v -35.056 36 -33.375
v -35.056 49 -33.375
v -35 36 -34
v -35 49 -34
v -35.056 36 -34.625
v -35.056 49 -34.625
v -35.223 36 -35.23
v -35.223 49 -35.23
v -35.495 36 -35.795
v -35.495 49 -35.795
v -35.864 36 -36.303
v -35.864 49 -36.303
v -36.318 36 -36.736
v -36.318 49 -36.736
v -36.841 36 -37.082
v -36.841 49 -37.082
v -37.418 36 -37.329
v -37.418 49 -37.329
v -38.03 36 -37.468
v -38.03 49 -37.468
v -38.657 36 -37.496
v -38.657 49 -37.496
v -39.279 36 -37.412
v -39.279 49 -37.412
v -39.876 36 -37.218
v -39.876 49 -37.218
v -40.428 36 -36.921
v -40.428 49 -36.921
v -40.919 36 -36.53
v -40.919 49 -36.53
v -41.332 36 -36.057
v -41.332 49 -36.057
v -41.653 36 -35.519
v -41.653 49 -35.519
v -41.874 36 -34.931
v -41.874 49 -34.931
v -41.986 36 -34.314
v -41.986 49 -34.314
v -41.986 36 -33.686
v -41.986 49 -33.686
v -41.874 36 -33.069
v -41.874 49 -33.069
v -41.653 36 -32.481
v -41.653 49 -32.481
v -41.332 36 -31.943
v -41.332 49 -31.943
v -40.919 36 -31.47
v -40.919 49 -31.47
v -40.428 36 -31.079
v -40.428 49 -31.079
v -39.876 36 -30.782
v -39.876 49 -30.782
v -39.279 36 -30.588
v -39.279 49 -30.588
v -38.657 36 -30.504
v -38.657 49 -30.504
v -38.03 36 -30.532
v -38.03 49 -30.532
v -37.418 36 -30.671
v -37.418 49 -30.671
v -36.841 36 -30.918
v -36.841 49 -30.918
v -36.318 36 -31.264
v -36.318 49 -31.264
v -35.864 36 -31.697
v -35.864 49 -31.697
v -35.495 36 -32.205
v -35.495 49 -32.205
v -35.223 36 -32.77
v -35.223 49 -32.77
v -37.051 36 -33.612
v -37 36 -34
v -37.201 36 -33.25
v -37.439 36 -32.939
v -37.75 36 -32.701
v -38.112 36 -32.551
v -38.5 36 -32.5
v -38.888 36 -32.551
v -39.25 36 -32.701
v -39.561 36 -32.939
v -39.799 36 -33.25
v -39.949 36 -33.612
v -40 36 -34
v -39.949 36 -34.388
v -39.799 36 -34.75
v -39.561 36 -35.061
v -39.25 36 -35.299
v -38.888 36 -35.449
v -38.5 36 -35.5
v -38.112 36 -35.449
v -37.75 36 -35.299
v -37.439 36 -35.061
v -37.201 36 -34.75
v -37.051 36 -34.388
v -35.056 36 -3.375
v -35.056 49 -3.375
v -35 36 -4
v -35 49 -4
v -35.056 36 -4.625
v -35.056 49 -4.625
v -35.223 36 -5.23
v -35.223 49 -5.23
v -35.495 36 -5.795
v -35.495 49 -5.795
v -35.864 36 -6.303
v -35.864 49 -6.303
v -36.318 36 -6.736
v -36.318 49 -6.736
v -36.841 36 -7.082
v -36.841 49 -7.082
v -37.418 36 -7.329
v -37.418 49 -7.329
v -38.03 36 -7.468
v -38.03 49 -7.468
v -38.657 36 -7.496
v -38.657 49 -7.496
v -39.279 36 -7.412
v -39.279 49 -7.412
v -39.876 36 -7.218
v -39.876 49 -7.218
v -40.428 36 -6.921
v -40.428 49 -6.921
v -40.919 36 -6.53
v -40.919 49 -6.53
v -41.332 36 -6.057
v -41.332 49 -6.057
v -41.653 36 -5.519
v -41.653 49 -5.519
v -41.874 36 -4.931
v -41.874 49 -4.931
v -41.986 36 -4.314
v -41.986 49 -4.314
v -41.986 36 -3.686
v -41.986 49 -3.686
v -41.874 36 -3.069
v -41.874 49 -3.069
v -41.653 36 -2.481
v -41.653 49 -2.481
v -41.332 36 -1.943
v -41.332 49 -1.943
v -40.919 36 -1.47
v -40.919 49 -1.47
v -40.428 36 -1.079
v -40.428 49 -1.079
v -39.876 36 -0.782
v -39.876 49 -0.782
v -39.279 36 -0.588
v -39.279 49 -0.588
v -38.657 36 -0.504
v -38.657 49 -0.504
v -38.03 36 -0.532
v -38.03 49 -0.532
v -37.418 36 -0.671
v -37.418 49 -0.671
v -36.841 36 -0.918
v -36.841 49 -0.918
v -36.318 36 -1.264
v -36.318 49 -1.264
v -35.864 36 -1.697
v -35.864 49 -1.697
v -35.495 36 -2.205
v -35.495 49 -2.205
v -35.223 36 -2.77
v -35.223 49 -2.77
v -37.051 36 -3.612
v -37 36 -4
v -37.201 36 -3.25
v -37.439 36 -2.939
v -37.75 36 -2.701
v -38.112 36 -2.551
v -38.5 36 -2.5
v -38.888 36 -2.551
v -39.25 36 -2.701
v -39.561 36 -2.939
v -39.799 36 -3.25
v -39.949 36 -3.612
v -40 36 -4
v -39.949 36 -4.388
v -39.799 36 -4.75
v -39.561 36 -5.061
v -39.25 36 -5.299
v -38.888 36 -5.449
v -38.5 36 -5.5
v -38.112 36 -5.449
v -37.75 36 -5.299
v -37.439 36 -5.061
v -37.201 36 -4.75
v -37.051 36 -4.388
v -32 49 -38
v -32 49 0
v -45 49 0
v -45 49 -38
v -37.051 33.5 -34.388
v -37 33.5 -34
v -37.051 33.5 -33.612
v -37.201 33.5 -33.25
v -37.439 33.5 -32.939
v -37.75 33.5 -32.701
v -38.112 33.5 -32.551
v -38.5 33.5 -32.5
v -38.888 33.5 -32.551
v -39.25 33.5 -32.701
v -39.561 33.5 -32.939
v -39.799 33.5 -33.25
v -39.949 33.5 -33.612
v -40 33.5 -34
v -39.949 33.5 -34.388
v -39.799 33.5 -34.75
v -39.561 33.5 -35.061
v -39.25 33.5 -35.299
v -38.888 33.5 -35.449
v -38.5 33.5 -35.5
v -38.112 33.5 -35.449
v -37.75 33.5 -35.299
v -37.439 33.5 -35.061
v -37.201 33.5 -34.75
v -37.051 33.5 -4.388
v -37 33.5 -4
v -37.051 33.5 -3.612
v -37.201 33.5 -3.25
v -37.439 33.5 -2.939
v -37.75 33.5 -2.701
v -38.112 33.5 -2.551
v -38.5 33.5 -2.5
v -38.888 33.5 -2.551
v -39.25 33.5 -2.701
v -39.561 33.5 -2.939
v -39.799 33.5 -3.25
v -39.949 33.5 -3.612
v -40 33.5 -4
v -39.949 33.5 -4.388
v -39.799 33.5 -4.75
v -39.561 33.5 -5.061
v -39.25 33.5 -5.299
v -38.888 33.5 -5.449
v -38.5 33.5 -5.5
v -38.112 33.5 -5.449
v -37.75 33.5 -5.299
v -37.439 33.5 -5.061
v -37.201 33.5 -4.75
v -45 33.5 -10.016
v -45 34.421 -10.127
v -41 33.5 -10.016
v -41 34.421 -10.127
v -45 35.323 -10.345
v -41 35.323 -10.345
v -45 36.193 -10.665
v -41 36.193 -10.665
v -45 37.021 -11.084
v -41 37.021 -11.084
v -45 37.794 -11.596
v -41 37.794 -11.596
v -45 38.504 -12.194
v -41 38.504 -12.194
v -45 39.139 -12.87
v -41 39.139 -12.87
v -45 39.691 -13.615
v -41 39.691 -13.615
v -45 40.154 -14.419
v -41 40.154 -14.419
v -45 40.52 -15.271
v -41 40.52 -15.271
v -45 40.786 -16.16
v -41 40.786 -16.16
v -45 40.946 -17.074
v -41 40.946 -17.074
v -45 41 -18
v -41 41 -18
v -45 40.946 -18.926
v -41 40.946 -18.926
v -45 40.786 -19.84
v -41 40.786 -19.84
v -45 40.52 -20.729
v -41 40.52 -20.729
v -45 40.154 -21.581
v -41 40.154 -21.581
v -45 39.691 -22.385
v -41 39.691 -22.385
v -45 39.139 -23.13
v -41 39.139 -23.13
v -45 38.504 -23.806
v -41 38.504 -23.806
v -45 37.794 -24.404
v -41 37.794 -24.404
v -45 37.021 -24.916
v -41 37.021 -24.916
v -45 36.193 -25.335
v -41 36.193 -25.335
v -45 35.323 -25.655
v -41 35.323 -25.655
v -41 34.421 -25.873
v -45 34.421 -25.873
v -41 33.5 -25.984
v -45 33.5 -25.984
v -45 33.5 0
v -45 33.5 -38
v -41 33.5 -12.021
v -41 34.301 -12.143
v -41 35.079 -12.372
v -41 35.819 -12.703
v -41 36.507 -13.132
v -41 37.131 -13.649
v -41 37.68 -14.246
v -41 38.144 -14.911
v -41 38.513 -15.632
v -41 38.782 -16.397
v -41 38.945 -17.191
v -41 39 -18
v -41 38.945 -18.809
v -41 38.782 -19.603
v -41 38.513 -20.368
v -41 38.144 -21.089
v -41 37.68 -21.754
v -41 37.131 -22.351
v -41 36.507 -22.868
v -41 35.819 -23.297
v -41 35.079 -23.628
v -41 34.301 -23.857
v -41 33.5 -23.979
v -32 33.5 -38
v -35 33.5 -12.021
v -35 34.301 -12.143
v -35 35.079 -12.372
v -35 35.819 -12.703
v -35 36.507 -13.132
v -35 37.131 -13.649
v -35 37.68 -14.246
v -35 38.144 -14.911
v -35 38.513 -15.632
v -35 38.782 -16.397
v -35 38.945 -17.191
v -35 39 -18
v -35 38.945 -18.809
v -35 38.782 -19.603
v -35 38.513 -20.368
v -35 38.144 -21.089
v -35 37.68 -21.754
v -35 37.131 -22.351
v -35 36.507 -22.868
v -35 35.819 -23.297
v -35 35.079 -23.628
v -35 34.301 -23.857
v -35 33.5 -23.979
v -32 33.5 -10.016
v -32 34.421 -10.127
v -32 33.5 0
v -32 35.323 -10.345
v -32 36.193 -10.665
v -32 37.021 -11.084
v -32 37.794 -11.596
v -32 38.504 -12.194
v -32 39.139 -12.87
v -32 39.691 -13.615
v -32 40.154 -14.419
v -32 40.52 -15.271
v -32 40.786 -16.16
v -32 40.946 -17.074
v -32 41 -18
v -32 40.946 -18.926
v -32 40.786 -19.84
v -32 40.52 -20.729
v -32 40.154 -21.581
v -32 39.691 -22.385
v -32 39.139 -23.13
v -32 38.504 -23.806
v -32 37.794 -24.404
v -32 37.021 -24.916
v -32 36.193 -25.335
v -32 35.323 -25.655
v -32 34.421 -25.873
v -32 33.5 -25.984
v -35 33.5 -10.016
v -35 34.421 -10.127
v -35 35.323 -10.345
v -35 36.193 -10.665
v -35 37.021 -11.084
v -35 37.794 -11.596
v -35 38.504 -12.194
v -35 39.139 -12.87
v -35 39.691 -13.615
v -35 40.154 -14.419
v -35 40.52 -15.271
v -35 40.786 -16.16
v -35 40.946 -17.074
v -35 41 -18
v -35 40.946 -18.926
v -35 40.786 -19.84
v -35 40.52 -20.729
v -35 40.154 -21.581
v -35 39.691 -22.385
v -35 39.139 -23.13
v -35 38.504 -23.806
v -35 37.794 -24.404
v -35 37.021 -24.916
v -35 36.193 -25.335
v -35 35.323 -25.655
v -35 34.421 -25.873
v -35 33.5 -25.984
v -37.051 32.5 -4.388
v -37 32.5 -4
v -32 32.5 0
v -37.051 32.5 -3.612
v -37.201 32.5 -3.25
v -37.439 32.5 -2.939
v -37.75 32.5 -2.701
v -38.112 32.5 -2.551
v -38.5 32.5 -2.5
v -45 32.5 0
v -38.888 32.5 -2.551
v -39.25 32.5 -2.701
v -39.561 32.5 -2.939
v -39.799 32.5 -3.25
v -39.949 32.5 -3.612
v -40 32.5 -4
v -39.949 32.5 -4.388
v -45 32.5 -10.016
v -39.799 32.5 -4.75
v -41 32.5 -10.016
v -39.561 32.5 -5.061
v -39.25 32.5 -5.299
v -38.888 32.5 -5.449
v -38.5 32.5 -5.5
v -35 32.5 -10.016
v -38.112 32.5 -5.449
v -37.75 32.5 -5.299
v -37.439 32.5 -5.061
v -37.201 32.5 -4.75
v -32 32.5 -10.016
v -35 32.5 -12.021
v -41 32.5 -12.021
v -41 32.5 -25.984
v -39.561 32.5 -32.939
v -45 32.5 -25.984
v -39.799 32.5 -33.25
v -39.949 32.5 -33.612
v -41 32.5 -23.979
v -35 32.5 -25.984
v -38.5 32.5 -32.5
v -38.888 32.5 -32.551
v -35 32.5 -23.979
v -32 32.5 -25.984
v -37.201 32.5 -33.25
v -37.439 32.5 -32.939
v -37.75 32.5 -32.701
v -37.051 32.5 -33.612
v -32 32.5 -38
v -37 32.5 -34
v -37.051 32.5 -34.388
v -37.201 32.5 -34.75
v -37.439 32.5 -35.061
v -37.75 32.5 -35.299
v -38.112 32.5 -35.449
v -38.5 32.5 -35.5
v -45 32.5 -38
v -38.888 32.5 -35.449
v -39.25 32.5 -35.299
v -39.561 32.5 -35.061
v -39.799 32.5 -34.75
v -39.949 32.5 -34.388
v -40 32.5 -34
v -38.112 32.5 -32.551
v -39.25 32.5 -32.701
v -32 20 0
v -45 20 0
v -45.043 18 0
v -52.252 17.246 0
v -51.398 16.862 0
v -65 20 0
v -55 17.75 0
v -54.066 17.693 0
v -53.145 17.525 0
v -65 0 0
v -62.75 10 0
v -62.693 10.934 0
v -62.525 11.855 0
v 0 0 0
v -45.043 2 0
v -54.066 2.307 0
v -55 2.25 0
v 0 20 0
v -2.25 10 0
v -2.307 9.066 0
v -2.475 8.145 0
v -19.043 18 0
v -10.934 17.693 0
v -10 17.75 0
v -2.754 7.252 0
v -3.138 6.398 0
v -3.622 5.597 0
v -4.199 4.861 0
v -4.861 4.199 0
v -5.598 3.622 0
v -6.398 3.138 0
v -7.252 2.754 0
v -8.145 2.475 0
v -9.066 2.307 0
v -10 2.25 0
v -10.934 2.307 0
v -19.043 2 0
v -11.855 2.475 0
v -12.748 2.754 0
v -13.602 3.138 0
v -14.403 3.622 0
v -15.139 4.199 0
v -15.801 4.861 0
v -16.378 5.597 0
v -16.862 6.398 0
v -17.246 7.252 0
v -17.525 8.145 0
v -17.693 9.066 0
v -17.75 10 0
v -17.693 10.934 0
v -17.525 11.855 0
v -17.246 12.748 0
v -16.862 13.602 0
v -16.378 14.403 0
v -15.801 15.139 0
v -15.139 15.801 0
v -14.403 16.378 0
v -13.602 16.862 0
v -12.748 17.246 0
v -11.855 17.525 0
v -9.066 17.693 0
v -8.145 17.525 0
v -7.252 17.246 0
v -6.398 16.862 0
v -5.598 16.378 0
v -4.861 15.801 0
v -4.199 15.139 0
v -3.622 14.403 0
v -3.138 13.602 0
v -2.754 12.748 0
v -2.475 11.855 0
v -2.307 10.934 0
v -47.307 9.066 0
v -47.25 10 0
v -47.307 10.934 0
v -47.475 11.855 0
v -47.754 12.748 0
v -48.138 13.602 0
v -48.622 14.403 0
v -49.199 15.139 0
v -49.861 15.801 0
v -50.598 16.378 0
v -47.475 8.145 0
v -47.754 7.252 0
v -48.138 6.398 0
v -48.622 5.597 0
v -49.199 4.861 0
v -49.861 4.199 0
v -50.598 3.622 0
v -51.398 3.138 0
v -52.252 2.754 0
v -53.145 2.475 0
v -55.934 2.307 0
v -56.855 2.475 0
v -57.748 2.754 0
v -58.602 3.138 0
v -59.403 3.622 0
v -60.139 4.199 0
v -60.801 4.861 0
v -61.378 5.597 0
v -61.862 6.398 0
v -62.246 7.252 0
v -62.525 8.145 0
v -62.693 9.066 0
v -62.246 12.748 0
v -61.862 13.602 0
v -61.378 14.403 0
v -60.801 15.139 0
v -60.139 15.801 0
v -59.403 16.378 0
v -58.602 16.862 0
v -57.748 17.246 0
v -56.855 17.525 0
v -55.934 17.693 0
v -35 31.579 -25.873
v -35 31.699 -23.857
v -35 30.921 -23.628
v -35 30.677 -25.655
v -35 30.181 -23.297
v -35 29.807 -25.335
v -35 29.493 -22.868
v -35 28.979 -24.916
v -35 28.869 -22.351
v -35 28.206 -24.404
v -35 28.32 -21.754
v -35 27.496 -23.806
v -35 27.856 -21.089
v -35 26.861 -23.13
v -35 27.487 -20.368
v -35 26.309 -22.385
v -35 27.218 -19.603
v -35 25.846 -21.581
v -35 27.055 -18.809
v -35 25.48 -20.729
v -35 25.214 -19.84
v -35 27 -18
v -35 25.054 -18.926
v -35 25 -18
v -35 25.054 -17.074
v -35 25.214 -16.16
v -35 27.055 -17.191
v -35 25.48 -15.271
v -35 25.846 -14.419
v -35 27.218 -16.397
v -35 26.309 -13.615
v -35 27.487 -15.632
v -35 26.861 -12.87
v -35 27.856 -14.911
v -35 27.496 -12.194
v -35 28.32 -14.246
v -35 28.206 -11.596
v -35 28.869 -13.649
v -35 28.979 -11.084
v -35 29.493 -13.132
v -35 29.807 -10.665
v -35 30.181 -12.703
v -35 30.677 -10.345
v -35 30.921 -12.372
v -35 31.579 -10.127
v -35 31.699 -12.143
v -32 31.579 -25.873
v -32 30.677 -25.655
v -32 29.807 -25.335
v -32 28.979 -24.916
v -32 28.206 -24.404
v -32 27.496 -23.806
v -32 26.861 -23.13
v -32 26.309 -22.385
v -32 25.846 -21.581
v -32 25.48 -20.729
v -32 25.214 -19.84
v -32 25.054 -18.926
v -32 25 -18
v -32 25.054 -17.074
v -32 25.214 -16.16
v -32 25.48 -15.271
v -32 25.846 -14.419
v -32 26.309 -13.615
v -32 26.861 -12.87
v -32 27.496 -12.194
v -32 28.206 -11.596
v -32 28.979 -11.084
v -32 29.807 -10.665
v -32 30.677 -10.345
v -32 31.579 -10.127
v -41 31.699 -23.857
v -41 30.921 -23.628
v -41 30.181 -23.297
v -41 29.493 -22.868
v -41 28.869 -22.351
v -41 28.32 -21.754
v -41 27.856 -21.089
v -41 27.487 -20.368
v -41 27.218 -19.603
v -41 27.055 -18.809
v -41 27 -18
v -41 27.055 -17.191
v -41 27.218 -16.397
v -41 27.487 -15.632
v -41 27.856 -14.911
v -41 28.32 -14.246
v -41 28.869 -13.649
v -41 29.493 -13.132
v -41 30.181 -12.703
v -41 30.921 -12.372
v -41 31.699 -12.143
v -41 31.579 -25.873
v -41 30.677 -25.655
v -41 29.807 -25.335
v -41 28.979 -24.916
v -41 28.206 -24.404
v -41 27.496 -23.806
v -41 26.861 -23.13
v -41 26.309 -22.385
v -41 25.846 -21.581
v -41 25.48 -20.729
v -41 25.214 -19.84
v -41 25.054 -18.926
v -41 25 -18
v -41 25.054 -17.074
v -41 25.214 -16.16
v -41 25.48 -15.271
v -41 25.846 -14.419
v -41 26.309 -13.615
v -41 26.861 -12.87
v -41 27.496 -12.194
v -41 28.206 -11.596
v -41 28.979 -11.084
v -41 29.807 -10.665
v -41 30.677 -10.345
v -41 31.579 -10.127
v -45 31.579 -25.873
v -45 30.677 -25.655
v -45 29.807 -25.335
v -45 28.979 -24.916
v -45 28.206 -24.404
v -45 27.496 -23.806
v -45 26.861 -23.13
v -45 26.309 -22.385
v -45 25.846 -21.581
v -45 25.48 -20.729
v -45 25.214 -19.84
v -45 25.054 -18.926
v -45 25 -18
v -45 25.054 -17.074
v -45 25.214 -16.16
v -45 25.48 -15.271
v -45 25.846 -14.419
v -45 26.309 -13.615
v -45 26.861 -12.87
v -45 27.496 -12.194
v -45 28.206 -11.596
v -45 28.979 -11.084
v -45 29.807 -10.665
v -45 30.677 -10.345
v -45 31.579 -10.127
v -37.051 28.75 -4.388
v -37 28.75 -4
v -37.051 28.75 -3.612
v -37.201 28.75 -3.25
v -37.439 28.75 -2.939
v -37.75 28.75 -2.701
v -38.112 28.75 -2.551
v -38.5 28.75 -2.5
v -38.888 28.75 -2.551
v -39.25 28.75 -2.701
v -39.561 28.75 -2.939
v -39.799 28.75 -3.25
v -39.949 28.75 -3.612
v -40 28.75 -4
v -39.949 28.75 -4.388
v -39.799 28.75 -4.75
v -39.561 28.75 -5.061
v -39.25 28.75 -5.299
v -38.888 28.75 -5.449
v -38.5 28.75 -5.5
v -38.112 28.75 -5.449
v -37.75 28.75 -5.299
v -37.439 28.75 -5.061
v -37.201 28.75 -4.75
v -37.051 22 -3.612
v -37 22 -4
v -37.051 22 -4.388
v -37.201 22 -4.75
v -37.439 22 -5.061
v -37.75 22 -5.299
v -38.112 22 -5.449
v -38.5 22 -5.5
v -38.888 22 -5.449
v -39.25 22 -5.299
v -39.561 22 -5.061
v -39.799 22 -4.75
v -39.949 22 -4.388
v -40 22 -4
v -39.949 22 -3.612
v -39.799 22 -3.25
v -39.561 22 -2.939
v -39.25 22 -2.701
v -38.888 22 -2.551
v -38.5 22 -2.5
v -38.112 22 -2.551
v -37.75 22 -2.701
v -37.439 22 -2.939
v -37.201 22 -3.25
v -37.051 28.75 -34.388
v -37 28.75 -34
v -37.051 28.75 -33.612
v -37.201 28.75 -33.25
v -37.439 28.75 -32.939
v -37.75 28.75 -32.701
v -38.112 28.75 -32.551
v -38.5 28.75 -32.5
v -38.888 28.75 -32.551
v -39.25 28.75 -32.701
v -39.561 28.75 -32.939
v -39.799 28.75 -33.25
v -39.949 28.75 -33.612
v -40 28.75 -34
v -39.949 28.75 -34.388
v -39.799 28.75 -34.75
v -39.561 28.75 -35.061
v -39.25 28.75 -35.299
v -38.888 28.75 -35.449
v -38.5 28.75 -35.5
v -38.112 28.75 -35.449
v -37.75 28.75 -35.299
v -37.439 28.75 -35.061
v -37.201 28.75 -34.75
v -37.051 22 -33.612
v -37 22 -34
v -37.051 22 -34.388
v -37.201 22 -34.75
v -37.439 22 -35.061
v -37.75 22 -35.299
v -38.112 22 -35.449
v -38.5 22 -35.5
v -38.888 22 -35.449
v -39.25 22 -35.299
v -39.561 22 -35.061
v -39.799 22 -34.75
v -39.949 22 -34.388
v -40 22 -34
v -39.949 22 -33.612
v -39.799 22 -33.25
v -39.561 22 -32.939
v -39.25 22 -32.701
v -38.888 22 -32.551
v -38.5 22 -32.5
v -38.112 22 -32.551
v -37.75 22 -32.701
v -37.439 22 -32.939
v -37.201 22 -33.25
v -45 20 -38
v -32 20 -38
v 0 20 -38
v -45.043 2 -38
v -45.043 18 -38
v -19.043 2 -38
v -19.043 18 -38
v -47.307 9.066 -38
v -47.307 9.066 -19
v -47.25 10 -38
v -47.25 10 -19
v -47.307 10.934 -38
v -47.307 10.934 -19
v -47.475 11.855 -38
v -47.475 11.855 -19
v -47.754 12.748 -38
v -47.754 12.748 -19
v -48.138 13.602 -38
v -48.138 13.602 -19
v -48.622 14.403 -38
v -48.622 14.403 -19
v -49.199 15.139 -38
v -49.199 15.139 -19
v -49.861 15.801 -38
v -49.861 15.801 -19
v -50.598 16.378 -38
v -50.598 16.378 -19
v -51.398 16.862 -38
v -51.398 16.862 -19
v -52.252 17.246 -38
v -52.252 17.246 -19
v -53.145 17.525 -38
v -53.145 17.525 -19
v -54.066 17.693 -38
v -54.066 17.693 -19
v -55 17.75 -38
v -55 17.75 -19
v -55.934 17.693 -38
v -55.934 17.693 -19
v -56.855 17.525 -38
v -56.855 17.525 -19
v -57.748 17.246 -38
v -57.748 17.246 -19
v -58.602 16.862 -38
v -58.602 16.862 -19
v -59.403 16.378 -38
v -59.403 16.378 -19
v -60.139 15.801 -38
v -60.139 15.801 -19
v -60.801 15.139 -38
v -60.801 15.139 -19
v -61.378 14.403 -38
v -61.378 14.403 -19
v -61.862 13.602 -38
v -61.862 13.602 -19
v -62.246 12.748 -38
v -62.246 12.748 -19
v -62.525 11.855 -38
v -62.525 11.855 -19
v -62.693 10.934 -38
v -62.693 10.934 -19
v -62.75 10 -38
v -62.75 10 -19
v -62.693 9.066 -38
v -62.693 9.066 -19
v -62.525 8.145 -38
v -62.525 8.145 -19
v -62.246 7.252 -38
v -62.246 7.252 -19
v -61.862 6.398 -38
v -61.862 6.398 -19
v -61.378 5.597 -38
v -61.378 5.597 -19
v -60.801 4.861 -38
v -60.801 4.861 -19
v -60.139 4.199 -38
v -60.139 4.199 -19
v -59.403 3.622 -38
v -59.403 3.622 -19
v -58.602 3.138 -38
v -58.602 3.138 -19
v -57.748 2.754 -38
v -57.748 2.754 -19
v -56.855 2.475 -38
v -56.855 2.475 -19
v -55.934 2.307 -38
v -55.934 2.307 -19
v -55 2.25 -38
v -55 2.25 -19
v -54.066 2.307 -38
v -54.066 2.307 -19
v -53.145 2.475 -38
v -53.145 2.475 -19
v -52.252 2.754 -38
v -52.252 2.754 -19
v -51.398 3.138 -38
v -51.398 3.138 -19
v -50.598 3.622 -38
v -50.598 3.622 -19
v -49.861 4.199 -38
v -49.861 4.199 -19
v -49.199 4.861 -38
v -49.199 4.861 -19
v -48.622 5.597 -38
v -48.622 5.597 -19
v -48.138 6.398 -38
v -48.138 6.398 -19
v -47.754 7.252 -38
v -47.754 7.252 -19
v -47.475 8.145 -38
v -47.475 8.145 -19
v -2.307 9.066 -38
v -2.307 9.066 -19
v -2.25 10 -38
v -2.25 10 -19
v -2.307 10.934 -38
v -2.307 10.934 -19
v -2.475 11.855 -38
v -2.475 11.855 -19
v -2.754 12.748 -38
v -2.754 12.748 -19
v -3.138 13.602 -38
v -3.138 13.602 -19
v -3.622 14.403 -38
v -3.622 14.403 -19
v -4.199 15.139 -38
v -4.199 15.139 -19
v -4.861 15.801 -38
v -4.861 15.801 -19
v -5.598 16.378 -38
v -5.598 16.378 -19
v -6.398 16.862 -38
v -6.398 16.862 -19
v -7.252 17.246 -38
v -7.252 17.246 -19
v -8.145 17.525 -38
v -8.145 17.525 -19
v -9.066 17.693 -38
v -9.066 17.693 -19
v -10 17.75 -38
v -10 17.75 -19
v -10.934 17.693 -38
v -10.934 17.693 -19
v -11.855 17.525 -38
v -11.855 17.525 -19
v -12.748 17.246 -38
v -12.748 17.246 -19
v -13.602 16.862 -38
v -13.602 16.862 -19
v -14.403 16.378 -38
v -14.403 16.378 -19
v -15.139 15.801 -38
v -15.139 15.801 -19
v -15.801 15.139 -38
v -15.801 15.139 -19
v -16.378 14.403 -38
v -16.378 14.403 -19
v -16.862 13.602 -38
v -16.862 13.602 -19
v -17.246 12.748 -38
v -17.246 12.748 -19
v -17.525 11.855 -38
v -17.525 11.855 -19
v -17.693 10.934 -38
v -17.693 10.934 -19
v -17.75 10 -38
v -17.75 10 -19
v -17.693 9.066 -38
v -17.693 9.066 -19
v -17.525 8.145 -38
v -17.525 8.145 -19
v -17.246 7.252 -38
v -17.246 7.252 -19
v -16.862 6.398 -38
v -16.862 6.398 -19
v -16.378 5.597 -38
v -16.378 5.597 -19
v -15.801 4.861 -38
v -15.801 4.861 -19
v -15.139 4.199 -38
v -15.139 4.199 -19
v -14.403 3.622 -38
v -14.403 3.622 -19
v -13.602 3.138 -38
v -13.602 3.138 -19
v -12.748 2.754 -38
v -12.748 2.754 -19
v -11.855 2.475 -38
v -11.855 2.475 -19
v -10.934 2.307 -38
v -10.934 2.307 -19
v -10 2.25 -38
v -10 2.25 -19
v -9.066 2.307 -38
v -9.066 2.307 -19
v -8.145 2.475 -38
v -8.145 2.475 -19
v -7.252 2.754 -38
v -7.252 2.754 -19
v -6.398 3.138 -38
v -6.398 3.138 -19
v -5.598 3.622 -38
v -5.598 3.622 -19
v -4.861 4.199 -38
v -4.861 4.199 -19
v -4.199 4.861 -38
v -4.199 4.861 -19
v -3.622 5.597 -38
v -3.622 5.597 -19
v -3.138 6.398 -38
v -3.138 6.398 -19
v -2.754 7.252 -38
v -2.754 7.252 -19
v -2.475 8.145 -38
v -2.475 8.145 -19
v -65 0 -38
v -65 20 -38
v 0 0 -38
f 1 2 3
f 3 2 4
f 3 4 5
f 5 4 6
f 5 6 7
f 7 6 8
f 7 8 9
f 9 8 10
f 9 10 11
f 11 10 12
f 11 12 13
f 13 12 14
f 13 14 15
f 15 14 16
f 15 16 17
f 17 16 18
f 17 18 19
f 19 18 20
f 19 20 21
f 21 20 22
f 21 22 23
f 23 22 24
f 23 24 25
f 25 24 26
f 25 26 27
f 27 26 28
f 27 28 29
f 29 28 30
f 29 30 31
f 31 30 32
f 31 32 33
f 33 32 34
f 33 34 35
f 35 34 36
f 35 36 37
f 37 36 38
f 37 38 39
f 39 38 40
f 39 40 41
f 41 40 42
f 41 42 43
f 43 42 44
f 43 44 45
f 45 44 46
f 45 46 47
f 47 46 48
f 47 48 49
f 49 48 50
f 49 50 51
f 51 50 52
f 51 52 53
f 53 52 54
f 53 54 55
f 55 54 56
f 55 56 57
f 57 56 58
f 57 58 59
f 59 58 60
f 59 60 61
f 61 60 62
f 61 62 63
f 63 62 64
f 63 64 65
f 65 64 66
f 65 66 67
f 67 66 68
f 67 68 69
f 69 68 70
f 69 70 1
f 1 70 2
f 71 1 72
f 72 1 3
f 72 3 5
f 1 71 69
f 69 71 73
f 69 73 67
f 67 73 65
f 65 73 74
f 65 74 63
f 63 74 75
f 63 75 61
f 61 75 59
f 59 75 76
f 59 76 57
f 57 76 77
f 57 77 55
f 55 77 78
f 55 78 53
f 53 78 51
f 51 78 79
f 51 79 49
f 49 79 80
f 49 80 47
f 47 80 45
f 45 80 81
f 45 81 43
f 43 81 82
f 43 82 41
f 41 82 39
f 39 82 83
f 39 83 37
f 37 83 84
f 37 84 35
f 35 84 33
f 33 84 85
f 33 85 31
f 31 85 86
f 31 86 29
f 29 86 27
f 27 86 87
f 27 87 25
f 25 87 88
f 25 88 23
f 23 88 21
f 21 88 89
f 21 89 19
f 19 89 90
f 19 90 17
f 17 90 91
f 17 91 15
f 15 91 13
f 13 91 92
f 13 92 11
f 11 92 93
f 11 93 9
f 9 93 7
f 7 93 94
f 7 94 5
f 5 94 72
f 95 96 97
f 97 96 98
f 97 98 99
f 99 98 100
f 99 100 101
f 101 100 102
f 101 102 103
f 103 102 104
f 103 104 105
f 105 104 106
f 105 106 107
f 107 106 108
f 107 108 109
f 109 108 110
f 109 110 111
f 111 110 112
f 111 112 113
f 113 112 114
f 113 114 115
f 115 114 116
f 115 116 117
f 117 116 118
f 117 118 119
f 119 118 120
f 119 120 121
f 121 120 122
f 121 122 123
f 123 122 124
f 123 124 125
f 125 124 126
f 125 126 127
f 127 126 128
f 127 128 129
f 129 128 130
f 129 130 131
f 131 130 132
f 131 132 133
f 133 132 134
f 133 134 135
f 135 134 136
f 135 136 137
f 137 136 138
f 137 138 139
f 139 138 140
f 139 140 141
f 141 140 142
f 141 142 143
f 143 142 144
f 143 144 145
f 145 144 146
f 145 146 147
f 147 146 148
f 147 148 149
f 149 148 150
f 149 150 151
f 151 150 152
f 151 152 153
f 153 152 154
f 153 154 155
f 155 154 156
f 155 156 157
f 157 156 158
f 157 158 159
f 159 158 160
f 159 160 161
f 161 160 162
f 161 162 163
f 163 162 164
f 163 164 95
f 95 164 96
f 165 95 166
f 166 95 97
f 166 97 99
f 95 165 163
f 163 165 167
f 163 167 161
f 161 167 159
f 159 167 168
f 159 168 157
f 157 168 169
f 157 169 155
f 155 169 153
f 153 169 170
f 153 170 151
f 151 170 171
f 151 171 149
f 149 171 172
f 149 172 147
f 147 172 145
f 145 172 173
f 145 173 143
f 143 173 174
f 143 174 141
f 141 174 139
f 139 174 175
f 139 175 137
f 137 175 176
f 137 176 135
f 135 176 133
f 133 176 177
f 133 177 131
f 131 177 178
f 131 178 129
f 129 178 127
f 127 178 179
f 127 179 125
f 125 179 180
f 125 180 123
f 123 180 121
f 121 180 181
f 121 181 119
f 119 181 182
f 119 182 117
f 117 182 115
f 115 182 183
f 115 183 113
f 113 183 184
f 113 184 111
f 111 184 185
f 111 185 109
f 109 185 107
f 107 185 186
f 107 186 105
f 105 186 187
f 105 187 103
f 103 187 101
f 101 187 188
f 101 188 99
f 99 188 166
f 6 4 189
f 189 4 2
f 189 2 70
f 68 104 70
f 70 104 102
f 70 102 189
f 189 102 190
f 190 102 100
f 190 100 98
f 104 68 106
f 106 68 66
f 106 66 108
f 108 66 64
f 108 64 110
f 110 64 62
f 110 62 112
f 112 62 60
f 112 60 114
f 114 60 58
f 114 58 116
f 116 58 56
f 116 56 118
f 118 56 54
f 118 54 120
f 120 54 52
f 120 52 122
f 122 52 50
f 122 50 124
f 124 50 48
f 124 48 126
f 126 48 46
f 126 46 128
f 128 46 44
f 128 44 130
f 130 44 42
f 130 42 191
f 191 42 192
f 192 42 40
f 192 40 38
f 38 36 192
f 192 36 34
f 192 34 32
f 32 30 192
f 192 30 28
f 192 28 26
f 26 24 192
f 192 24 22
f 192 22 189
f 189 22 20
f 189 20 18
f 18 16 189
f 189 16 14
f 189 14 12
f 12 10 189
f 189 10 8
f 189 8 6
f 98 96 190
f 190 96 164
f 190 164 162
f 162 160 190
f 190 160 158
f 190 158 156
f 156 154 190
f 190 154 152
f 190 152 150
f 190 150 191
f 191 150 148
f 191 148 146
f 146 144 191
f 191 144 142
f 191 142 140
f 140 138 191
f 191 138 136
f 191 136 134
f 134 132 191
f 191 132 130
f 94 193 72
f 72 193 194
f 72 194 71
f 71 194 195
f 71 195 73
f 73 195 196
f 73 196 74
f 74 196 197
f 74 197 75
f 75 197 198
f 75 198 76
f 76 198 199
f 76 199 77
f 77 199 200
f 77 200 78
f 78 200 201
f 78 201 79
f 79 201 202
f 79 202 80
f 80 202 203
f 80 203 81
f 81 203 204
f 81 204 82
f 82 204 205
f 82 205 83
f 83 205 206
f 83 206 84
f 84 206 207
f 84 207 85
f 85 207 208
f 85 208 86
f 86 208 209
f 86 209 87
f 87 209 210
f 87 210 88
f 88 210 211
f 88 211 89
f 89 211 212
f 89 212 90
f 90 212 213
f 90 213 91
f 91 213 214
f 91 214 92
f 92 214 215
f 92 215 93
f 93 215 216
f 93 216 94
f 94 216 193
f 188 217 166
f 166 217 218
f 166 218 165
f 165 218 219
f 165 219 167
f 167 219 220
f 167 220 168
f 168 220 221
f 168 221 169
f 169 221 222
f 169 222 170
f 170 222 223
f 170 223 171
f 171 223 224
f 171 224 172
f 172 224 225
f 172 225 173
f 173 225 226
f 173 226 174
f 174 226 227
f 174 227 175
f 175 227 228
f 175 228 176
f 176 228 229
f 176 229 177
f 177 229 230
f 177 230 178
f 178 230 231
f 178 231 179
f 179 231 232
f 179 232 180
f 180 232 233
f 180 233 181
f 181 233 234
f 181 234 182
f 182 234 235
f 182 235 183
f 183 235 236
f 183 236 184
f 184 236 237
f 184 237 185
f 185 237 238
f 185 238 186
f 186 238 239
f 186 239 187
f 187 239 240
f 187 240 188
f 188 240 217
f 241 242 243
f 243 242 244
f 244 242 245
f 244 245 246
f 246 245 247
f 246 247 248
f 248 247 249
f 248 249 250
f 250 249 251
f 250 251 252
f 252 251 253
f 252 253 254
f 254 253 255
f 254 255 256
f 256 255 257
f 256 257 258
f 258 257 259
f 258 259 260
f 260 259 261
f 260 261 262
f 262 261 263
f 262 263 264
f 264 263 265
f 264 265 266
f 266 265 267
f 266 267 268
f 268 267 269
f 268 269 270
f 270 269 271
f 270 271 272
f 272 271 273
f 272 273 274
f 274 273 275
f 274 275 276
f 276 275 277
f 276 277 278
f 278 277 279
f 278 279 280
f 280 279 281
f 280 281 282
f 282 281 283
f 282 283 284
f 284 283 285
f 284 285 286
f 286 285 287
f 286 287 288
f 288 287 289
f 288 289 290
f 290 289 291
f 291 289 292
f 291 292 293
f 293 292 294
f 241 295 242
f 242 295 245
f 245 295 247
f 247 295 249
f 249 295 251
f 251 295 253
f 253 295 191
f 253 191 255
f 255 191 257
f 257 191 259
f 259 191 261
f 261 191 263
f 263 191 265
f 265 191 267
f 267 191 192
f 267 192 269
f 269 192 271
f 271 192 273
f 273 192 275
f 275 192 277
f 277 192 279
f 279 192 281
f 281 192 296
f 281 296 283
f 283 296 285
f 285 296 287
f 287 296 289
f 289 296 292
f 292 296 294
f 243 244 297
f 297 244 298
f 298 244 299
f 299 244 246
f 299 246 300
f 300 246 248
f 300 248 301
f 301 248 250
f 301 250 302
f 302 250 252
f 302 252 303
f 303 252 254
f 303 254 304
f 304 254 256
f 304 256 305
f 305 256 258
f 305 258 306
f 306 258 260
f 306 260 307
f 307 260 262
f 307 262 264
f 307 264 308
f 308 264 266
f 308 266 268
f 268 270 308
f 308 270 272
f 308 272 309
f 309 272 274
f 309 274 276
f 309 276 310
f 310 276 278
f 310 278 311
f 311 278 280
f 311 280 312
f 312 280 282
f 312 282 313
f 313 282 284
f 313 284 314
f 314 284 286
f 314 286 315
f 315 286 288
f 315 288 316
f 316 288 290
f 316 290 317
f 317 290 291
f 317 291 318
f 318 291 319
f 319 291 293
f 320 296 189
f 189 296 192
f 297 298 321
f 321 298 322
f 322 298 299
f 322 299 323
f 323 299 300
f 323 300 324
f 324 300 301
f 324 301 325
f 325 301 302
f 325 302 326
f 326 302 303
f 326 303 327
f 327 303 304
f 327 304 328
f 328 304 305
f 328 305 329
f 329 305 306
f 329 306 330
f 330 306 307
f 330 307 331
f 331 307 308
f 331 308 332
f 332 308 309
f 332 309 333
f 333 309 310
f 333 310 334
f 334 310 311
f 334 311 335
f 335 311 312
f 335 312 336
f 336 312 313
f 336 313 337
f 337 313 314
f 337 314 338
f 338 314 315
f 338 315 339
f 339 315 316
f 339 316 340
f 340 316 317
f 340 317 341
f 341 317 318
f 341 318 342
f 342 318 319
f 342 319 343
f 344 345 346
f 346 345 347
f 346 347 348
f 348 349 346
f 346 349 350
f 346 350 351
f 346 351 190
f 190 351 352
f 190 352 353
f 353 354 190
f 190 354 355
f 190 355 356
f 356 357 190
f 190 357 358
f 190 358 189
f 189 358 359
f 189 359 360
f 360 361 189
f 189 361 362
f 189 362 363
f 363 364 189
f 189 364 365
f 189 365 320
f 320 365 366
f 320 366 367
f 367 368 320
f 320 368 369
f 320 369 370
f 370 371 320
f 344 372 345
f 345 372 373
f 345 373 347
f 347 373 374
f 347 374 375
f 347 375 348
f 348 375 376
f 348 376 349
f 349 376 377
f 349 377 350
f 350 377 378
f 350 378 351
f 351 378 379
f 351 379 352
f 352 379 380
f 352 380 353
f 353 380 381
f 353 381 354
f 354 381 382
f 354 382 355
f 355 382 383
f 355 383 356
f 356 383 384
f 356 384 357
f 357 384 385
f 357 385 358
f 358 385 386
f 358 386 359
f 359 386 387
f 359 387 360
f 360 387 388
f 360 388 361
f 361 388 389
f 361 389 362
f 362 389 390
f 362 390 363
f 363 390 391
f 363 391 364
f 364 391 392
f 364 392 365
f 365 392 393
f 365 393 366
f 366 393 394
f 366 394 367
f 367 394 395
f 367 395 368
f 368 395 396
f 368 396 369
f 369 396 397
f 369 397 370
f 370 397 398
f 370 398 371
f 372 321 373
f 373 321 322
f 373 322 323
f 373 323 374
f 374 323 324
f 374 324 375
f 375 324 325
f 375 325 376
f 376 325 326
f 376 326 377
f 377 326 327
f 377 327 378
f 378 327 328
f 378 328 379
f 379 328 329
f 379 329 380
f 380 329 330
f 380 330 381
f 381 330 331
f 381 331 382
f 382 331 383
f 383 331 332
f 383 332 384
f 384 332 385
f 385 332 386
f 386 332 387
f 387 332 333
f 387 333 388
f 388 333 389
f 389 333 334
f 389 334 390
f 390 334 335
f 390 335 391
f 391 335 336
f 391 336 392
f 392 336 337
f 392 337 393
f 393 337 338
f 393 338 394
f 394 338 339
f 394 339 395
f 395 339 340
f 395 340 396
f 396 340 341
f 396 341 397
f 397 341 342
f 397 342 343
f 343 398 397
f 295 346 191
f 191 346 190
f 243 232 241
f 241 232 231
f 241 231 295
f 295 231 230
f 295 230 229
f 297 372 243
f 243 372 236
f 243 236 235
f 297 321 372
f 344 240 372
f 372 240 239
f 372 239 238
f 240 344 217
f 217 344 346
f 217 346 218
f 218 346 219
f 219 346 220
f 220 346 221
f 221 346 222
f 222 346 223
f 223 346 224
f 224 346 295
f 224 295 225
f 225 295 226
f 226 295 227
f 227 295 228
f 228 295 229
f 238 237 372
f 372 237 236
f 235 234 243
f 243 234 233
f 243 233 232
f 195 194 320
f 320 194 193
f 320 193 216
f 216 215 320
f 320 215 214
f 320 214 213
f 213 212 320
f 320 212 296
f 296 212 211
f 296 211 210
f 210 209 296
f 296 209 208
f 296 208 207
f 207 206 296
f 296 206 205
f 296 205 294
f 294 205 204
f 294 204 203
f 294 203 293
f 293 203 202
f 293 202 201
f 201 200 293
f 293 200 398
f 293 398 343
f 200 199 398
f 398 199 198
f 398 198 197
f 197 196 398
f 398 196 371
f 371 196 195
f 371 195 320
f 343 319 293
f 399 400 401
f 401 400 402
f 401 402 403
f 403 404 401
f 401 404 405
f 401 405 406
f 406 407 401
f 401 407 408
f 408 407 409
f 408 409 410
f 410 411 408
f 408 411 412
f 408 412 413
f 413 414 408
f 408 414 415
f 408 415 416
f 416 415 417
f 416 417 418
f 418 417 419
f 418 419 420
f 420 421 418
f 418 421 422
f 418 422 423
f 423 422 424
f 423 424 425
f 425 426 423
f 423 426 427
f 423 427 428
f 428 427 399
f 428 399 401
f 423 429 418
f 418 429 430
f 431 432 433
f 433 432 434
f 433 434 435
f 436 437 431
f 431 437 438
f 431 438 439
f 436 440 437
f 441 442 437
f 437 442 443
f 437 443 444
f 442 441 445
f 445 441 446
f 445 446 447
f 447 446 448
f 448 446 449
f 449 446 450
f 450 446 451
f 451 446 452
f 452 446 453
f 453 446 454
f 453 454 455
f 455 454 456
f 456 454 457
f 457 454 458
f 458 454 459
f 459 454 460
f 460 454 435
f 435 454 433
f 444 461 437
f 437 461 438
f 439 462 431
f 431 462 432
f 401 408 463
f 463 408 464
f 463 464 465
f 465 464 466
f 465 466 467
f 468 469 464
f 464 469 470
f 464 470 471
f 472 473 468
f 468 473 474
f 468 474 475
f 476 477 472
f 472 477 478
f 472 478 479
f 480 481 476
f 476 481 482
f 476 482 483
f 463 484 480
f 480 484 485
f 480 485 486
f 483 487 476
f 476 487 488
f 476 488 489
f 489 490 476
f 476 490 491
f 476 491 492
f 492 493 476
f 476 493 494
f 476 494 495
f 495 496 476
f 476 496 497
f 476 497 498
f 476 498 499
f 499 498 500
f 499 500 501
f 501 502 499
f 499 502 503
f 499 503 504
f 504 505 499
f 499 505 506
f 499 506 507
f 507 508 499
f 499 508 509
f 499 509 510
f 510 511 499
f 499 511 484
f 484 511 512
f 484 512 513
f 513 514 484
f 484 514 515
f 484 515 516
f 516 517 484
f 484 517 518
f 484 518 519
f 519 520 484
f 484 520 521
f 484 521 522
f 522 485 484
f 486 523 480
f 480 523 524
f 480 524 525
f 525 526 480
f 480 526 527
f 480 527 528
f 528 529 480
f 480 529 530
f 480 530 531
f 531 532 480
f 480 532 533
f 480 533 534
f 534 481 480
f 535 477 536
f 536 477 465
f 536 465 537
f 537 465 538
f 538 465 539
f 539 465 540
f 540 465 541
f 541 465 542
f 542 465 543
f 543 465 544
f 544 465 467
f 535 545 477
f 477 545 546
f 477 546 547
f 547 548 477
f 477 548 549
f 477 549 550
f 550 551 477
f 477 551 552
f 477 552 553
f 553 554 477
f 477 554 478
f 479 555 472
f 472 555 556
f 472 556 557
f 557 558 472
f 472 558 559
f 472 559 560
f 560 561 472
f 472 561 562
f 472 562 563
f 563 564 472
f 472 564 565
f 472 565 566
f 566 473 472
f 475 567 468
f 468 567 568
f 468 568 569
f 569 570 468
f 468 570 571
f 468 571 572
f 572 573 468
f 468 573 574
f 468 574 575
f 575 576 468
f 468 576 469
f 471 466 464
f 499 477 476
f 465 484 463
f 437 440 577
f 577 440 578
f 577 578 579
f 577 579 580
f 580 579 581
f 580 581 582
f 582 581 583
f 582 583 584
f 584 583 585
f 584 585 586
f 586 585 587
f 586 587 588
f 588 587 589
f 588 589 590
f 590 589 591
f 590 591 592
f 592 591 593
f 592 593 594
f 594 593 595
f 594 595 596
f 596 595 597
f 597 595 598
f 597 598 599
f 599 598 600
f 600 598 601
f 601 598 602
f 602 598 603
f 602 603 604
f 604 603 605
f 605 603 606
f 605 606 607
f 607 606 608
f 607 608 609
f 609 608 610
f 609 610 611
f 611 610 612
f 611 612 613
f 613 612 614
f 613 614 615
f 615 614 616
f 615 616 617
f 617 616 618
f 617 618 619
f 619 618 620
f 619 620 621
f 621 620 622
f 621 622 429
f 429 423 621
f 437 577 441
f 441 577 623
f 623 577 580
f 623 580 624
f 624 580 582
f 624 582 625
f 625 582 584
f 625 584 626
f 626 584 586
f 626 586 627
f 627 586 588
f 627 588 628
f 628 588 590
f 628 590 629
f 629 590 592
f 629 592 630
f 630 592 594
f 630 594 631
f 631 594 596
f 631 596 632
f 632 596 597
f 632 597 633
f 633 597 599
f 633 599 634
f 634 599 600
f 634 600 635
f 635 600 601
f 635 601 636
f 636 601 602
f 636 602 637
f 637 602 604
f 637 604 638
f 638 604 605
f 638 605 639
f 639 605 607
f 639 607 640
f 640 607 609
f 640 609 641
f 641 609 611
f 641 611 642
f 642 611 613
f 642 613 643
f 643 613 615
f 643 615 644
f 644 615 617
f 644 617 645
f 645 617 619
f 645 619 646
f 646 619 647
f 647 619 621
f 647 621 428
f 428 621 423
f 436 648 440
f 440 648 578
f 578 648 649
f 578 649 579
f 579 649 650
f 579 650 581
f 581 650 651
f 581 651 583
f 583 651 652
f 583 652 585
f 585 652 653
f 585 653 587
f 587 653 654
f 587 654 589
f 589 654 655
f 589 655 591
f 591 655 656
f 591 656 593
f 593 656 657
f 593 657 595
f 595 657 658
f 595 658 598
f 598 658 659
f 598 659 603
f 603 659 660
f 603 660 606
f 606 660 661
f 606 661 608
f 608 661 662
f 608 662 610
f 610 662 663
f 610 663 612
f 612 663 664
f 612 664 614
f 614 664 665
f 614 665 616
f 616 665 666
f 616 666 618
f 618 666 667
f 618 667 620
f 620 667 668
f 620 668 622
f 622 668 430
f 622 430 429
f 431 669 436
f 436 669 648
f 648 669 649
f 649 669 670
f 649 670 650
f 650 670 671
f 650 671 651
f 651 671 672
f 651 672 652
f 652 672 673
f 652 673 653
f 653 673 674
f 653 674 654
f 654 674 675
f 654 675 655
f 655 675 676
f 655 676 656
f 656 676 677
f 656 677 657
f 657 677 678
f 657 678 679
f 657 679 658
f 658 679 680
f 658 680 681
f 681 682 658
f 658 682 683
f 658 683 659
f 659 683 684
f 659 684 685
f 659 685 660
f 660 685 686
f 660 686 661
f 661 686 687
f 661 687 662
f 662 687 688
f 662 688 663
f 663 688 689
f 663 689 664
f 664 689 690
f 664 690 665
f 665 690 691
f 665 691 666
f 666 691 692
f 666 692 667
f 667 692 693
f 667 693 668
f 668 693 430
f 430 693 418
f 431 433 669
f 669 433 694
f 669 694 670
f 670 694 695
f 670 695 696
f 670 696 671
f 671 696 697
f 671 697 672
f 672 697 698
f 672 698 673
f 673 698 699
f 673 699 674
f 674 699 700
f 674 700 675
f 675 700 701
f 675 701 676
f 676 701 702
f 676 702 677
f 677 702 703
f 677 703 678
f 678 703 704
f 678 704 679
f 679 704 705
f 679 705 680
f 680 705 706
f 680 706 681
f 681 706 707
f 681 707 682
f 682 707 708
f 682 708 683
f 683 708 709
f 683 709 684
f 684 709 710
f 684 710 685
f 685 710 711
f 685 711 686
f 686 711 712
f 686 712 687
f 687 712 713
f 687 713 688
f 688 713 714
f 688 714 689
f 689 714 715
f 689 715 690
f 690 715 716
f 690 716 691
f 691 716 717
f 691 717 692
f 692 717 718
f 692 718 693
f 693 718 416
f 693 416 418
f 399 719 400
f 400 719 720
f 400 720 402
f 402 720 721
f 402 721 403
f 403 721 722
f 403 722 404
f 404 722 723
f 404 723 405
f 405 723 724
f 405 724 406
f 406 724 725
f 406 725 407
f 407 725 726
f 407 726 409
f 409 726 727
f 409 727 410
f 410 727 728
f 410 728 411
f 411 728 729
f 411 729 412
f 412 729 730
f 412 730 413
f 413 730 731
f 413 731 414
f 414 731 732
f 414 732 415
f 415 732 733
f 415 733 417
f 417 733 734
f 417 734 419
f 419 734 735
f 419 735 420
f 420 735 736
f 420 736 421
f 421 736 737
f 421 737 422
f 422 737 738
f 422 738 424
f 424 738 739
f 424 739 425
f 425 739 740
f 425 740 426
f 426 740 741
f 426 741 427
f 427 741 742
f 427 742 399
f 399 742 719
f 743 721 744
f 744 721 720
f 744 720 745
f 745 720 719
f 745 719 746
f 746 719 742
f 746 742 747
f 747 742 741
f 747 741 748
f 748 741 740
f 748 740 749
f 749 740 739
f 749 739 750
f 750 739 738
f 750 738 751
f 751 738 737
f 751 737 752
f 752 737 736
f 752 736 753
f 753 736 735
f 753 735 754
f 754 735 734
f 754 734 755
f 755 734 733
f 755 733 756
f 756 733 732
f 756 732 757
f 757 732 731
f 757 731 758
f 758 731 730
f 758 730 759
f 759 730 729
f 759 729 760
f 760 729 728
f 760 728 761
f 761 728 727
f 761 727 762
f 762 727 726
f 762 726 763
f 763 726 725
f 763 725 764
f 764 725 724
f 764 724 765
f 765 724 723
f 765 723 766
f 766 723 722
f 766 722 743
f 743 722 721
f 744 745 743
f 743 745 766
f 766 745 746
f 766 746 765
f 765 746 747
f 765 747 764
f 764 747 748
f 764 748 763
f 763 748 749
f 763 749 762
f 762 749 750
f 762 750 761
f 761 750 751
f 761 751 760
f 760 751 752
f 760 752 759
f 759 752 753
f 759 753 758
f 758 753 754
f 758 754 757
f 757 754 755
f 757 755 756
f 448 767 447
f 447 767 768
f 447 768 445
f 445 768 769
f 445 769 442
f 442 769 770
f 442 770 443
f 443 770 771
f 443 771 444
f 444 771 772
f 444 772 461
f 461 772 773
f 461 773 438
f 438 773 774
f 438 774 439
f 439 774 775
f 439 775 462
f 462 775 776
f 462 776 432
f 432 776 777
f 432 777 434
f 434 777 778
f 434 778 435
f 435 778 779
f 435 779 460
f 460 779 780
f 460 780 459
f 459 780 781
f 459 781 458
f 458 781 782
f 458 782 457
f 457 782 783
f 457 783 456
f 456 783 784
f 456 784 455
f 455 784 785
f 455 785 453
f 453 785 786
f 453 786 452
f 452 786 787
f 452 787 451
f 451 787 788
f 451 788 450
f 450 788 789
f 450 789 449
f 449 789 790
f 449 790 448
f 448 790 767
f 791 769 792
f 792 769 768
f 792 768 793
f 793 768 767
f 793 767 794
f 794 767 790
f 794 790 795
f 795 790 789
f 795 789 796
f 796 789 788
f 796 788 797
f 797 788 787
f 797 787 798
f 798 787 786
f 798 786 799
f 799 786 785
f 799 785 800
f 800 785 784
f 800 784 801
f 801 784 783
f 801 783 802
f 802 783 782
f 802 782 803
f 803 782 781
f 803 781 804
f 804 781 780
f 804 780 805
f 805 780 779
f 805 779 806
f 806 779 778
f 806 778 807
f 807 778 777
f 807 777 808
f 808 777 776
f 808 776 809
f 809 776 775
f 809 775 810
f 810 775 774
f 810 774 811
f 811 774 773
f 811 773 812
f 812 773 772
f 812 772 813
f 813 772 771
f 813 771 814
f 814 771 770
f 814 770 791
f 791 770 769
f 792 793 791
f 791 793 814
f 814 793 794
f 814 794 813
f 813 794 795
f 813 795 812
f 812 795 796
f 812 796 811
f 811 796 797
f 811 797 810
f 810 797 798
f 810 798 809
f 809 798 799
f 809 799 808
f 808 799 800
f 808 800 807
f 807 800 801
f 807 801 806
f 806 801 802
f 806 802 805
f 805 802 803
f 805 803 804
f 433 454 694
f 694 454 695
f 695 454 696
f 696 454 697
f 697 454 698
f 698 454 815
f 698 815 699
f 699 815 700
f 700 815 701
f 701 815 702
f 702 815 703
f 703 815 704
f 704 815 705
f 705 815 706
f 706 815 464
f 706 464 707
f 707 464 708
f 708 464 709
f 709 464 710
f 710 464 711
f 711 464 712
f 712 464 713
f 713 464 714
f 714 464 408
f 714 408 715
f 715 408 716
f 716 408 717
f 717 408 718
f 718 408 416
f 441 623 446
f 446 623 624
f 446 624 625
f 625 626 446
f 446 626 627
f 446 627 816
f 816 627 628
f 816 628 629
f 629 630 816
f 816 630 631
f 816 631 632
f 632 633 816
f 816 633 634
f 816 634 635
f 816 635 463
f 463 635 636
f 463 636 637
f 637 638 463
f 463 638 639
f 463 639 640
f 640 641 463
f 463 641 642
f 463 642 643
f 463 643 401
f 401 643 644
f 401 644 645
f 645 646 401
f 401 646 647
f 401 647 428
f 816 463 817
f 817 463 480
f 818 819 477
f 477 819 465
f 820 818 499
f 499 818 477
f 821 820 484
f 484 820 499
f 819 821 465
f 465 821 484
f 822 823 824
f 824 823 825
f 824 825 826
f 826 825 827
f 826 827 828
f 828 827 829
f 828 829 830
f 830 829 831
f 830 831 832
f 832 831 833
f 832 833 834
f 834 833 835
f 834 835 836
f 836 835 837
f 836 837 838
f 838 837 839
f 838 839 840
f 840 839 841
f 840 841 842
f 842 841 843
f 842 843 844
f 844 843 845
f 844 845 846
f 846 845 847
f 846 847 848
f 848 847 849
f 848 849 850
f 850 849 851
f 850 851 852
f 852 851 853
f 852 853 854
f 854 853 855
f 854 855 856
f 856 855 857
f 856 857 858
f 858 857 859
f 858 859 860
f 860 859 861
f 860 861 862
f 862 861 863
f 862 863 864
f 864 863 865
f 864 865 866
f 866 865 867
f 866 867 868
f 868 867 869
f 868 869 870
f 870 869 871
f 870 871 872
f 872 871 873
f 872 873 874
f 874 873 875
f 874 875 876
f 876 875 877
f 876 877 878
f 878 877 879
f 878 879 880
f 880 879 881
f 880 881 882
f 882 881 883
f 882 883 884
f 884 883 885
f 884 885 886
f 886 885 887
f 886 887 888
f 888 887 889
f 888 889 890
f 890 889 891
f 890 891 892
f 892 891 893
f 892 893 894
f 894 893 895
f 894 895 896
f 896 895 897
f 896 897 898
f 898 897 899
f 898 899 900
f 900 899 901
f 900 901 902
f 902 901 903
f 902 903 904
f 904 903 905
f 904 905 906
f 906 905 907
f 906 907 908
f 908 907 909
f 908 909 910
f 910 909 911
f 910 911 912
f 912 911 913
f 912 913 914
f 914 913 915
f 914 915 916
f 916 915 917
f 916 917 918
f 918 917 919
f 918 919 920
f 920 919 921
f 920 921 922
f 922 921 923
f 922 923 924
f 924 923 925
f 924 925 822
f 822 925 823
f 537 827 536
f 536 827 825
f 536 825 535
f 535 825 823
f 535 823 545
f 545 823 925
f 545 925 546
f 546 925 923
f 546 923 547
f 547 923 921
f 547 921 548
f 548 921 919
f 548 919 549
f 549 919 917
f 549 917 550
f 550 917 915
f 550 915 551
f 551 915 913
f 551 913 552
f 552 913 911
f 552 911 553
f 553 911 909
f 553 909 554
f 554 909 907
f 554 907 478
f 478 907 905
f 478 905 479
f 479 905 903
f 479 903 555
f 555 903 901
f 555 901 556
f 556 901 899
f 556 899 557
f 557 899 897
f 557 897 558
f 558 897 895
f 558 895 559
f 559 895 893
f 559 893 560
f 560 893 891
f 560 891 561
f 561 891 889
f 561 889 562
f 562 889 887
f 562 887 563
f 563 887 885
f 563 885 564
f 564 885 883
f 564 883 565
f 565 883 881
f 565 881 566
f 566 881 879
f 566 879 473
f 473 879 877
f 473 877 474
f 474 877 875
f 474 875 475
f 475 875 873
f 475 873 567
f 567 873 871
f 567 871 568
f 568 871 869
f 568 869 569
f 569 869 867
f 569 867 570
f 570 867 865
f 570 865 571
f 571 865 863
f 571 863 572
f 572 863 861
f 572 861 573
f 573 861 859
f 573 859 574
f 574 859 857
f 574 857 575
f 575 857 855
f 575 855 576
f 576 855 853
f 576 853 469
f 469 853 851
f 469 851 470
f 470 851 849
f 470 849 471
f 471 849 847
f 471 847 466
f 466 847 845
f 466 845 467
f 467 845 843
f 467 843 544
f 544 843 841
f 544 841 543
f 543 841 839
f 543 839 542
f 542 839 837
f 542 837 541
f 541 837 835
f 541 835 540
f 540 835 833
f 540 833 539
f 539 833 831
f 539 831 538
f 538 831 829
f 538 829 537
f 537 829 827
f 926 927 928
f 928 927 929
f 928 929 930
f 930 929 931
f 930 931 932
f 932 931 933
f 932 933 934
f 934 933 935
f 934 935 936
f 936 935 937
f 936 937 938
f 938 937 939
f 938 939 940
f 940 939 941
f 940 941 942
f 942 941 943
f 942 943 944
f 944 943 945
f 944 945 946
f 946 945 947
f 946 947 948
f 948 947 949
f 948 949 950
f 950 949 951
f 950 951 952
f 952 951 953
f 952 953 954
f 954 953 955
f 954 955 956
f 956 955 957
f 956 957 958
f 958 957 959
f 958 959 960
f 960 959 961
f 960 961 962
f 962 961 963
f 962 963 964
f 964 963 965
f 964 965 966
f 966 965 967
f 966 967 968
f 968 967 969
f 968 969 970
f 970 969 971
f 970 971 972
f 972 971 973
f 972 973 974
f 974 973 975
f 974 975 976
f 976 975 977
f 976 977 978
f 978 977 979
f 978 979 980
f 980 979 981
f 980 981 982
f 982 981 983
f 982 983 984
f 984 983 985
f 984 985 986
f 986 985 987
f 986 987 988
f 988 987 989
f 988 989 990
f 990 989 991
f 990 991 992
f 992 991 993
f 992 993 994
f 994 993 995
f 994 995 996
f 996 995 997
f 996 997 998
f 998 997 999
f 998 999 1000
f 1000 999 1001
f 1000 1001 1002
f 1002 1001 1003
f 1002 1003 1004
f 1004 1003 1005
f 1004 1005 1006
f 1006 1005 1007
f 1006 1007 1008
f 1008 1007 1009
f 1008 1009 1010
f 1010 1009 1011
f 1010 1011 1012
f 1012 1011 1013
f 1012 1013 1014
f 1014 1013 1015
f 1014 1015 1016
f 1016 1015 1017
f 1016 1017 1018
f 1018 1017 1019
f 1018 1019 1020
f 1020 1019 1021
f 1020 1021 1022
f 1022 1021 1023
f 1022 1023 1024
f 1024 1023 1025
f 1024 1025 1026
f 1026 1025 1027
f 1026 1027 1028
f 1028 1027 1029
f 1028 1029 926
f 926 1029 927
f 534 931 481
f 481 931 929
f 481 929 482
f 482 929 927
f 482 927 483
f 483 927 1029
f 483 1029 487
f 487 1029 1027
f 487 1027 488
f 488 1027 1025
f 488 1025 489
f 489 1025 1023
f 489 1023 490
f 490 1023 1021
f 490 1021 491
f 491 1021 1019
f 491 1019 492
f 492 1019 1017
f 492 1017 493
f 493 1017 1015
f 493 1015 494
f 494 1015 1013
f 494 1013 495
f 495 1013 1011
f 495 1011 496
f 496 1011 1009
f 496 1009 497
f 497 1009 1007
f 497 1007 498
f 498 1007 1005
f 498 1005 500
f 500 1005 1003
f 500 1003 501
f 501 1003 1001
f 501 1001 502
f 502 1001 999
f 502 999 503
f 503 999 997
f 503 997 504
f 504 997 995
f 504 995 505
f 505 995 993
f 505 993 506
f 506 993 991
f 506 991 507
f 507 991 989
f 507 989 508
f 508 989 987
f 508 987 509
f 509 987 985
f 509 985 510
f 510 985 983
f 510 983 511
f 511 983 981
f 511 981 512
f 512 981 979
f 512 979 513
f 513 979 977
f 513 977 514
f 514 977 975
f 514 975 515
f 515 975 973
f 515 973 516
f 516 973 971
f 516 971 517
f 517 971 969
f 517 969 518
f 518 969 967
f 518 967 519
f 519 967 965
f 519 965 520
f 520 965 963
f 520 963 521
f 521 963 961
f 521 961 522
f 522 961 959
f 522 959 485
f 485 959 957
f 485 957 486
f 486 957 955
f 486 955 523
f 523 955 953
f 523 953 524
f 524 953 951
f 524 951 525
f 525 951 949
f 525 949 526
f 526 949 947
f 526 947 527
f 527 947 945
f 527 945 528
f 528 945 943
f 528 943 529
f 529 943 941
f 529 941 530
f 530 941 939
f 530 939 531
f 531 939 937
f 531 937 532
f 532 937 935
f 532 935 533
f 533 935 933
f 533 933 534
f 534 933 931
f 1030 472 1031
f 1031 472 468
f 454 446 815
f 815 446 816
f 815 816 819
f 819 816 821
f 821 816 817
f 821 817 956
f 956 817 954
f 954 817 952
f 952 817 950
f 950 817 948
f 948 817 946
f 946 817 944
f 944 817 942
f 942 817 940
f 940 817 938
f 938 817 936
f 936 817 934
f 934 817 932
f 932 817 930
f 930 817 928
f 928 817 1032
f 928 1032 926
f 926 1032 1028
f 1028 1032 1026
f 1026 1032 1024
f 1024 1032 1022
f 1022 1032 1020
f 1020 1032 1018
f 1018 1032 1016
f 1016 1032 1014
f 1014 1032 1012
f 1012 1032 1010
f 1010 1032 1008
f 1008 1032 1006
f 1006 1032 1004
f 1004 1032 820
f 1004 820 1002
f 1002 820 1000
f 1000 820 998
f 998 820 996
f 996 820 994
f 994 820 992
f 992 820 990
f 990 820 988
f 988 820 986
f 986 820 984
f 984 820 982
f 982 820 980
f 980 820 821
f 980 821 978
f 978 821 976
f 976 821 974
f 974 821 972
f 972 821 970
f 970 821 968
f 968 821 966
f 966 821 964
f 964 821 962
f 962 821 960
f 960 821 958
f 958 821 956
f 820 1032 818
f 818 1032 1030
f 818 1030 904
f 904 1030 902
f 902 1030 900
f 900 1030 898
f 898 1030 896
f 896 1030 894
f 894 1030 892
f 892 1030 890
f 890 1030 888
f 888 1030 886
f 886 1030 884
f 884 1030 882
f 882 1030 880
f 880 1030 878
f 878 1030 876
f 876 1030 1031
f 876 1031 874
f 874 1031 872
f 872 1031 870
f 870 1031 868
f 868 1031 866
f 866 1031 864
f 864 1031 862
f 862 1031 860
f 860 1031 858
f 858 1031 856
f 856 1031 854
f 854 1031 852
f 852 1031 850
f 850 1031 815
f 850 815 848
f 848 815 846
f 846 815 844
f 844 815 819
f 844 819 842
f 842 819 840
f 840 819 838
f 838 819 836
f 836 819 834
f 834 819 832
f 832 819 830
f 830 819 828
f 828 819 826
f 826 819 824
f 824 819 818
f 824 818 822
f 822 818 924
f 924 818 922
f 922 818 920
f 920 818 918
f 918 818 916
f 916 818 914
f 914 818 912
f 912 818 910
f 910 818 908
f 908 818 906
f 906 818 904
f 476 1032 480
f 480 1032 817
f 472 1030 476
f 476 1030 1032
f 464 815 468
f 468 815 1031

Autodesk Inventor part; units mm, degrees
ref_plane "YZ Plane" through (0, 0, 0) normal (1, 0, 0) x (0, 1, 0)
ref_plane "XZ Plane" through (0, 0, 0) normal (0, 1, 0) x (-1, 0, 0)
sketch "Sketch1" plane through (0, 0, 0) normal (0, 1, 0) x (-1, 0, 0)
  line L0 (0, 0) -> (65, 0)
  line L1 (65, 0) -> (65, -38)
  line L2 (65, -38) -> (0, -38)
  line L3 (0, -38) -> (0, 0)
  dimension "d0" = 65
  dimension "d1" = 38
extrude "Extrusion1" add sketch "Sketch1" along normal blind 20
sketch "Sketch2" plane through (-65, 0, 0) normal (0, 0, 1) x (1, 0, 0)
  circle A0 centre (10, 10) radius 7.75
  circle A1 centre (55, 10) radius 7.75
  line L0 (0, 0) -> (0, 20) projected
  line L1 (65, 0) -> (0, 0) projected
  dimension "d4" = 15.5
  dimension "d5" = 15.5
  dimension "d6" = 45
  dimension "d7" = 10
  dimension "d8" = 10
  dimension "d9" = 10
extrude "Extrusion2" cut sketch "Sketch2" against normal blind 60
sketch "Sketch3" plane through (-65, 0, 0) normal (0, 0, 1) x (1, 0, 0)
  line L0 (19.9566, 2) -> (45.9566, 2)
  line L1 (45.9566, 2) -> (45.9566, 18)
  line L2 (45.9566, 18) -> (19.9566, 18)
  line L3 (19.9566, 18) -> (19.9566, 2)
  line L4 (65, 0) -> (0, 0) projected
  dimension "d12" = 26
  dimension "d13" = 16
  dimension "d14" = 2
extrude "Extrusion3" cut sketch "Sketch3" against normal blind 60
sketch "Sketch5" plane through (0, 20, 0) normal (0, 1, 0) x (1, 0, 0)
  line L0 (0, 38) -> (-65, 38) projected
  line L1 (-65, 0) -> (0, 0) projected
  line L2 (-45, 38) -> (-32, 38)
  line L3 (-32, 38) -> (-32, 0)
  line L4 (-32, 0) -> (-45, 0)
  line L5 (-45, 0) -> (-45, 38)
  line L6 (0, 0) -> (0, 38) projected
  dimension "d17" = 13
  dimension "d45" = 32
extrude "Extrusion4" add sketch "Sketch5" along normal blind 29 contours L3 L1 L5 L0
sketch "Sketch7" plane through (-65, 0, -38) normal (-1, 0, 0) x (0, 0, 1)
  circle A0 centre (20, 33) radius 6
  line L0 (0, 49) -> (38, 49) projected
  line L1 (0, 0) -> (0, 20) projected
  point P0 (38, 0)
  point P1 (0, 46)
  dimension "d20" = 12
  dimension "d21" = 16
  dimension "d22" = 20
extrude "Extrusion5" cut sketch "Sketch7" along normal mid plane 600
ref_plane "Work Plane1" through (0, 33, 0) normal (0, 1, 0) x (1, 0, 0)
sketch "Sketch10" plane through (0, 33, 0) normal (0, 1, 0) x (1, 0, 0)
  line L0 (-45.6413, -0.955) -> (-31.8263, -0.955)
  line L1 (-31.8263, -0.955) -> (-31.8263, 38.7188)
  line L2 (-31.8263, 38.7188) -> (-45.6413, 38.7188)
  line L3 (-45.6413, 38.7188) -> (-45.6413, -0.955)
  point P0 (0, 0)
sketch "Sketch11" plane through (0, 49, 0) normal (0, 1, 0) x (1, 0, 0)
  circle A0 centre (-38.5, 4) radius 1.5
  circle A1 centre (-38.5, 34) radius 1.5
  line L0 (-45, 0) -> (-32, 0) projected
  line L1 (-45, 38) -> (-45, 0) projected
  point P0 (0, 0)
  point P1 (-65, 38)
  dimension "d33" = 3
  dimension "d34" = 3
  dimension "d35" = 30
  dimension "d36" = 4
  dimension "d37" = 6.5
  dimension "d38" = 6.5
extrude "Extrusion9" cut sketch "Sketch11" against normal blind 27
sketch "Sketch12" plane through (0, 49, 0) normal (0, 1, 0) x (1, 0, 0)
  circle A0 centre (-38.5, 34) radius 1.5 projected
  circle A1 centre (-38.5, 34) radius 3.5
  circle A2 centre (-38.5, 4) radius 1.5 projected
  circle A3 centre (-38.5, 4) radius 1.5
  circle A4 centre (-38.5, 4) radius 3.5
  point P0 (0, 0)
  dimension "d42" = 7
  dimension "d55" = 7
sketch "Sketch13" plane through (-45, 20, -38) normal (-1, 0, 0) x (0, 0, 1)
  circle A0 centre (20, 13) radius 6 projected
  circle A1 centre (20, 13) radius 6
  circle A2 centre (20, 13) radius 8
  point P0 (38, -20)
  dimension "d46" = 16
extrude "Extrusion11" cut sketch "Sketch13" against normal blind 4
sketch "Sketch14" plane through (-32, 20, 0) normal (1, 0, 0) x (0, 0, -1)
  circle A0 centre (18, 13) radius 6 projected
  circle A1 centre (18, 13) radius 6
  circle A2 centre (18, 13) radius 8
  point P0 (0, -20)
  dimension "d49" = 16
extrude "Extrusion12" cut sketch "Sketch14" against normal blind 3
extrude "Extrusion13" cut sketch "Sketch10" along normal mid plane 1
extrude "Extrusion14" cut sketch "Sketch12" against normal blind 13
properties part number "radiuscarrage"
